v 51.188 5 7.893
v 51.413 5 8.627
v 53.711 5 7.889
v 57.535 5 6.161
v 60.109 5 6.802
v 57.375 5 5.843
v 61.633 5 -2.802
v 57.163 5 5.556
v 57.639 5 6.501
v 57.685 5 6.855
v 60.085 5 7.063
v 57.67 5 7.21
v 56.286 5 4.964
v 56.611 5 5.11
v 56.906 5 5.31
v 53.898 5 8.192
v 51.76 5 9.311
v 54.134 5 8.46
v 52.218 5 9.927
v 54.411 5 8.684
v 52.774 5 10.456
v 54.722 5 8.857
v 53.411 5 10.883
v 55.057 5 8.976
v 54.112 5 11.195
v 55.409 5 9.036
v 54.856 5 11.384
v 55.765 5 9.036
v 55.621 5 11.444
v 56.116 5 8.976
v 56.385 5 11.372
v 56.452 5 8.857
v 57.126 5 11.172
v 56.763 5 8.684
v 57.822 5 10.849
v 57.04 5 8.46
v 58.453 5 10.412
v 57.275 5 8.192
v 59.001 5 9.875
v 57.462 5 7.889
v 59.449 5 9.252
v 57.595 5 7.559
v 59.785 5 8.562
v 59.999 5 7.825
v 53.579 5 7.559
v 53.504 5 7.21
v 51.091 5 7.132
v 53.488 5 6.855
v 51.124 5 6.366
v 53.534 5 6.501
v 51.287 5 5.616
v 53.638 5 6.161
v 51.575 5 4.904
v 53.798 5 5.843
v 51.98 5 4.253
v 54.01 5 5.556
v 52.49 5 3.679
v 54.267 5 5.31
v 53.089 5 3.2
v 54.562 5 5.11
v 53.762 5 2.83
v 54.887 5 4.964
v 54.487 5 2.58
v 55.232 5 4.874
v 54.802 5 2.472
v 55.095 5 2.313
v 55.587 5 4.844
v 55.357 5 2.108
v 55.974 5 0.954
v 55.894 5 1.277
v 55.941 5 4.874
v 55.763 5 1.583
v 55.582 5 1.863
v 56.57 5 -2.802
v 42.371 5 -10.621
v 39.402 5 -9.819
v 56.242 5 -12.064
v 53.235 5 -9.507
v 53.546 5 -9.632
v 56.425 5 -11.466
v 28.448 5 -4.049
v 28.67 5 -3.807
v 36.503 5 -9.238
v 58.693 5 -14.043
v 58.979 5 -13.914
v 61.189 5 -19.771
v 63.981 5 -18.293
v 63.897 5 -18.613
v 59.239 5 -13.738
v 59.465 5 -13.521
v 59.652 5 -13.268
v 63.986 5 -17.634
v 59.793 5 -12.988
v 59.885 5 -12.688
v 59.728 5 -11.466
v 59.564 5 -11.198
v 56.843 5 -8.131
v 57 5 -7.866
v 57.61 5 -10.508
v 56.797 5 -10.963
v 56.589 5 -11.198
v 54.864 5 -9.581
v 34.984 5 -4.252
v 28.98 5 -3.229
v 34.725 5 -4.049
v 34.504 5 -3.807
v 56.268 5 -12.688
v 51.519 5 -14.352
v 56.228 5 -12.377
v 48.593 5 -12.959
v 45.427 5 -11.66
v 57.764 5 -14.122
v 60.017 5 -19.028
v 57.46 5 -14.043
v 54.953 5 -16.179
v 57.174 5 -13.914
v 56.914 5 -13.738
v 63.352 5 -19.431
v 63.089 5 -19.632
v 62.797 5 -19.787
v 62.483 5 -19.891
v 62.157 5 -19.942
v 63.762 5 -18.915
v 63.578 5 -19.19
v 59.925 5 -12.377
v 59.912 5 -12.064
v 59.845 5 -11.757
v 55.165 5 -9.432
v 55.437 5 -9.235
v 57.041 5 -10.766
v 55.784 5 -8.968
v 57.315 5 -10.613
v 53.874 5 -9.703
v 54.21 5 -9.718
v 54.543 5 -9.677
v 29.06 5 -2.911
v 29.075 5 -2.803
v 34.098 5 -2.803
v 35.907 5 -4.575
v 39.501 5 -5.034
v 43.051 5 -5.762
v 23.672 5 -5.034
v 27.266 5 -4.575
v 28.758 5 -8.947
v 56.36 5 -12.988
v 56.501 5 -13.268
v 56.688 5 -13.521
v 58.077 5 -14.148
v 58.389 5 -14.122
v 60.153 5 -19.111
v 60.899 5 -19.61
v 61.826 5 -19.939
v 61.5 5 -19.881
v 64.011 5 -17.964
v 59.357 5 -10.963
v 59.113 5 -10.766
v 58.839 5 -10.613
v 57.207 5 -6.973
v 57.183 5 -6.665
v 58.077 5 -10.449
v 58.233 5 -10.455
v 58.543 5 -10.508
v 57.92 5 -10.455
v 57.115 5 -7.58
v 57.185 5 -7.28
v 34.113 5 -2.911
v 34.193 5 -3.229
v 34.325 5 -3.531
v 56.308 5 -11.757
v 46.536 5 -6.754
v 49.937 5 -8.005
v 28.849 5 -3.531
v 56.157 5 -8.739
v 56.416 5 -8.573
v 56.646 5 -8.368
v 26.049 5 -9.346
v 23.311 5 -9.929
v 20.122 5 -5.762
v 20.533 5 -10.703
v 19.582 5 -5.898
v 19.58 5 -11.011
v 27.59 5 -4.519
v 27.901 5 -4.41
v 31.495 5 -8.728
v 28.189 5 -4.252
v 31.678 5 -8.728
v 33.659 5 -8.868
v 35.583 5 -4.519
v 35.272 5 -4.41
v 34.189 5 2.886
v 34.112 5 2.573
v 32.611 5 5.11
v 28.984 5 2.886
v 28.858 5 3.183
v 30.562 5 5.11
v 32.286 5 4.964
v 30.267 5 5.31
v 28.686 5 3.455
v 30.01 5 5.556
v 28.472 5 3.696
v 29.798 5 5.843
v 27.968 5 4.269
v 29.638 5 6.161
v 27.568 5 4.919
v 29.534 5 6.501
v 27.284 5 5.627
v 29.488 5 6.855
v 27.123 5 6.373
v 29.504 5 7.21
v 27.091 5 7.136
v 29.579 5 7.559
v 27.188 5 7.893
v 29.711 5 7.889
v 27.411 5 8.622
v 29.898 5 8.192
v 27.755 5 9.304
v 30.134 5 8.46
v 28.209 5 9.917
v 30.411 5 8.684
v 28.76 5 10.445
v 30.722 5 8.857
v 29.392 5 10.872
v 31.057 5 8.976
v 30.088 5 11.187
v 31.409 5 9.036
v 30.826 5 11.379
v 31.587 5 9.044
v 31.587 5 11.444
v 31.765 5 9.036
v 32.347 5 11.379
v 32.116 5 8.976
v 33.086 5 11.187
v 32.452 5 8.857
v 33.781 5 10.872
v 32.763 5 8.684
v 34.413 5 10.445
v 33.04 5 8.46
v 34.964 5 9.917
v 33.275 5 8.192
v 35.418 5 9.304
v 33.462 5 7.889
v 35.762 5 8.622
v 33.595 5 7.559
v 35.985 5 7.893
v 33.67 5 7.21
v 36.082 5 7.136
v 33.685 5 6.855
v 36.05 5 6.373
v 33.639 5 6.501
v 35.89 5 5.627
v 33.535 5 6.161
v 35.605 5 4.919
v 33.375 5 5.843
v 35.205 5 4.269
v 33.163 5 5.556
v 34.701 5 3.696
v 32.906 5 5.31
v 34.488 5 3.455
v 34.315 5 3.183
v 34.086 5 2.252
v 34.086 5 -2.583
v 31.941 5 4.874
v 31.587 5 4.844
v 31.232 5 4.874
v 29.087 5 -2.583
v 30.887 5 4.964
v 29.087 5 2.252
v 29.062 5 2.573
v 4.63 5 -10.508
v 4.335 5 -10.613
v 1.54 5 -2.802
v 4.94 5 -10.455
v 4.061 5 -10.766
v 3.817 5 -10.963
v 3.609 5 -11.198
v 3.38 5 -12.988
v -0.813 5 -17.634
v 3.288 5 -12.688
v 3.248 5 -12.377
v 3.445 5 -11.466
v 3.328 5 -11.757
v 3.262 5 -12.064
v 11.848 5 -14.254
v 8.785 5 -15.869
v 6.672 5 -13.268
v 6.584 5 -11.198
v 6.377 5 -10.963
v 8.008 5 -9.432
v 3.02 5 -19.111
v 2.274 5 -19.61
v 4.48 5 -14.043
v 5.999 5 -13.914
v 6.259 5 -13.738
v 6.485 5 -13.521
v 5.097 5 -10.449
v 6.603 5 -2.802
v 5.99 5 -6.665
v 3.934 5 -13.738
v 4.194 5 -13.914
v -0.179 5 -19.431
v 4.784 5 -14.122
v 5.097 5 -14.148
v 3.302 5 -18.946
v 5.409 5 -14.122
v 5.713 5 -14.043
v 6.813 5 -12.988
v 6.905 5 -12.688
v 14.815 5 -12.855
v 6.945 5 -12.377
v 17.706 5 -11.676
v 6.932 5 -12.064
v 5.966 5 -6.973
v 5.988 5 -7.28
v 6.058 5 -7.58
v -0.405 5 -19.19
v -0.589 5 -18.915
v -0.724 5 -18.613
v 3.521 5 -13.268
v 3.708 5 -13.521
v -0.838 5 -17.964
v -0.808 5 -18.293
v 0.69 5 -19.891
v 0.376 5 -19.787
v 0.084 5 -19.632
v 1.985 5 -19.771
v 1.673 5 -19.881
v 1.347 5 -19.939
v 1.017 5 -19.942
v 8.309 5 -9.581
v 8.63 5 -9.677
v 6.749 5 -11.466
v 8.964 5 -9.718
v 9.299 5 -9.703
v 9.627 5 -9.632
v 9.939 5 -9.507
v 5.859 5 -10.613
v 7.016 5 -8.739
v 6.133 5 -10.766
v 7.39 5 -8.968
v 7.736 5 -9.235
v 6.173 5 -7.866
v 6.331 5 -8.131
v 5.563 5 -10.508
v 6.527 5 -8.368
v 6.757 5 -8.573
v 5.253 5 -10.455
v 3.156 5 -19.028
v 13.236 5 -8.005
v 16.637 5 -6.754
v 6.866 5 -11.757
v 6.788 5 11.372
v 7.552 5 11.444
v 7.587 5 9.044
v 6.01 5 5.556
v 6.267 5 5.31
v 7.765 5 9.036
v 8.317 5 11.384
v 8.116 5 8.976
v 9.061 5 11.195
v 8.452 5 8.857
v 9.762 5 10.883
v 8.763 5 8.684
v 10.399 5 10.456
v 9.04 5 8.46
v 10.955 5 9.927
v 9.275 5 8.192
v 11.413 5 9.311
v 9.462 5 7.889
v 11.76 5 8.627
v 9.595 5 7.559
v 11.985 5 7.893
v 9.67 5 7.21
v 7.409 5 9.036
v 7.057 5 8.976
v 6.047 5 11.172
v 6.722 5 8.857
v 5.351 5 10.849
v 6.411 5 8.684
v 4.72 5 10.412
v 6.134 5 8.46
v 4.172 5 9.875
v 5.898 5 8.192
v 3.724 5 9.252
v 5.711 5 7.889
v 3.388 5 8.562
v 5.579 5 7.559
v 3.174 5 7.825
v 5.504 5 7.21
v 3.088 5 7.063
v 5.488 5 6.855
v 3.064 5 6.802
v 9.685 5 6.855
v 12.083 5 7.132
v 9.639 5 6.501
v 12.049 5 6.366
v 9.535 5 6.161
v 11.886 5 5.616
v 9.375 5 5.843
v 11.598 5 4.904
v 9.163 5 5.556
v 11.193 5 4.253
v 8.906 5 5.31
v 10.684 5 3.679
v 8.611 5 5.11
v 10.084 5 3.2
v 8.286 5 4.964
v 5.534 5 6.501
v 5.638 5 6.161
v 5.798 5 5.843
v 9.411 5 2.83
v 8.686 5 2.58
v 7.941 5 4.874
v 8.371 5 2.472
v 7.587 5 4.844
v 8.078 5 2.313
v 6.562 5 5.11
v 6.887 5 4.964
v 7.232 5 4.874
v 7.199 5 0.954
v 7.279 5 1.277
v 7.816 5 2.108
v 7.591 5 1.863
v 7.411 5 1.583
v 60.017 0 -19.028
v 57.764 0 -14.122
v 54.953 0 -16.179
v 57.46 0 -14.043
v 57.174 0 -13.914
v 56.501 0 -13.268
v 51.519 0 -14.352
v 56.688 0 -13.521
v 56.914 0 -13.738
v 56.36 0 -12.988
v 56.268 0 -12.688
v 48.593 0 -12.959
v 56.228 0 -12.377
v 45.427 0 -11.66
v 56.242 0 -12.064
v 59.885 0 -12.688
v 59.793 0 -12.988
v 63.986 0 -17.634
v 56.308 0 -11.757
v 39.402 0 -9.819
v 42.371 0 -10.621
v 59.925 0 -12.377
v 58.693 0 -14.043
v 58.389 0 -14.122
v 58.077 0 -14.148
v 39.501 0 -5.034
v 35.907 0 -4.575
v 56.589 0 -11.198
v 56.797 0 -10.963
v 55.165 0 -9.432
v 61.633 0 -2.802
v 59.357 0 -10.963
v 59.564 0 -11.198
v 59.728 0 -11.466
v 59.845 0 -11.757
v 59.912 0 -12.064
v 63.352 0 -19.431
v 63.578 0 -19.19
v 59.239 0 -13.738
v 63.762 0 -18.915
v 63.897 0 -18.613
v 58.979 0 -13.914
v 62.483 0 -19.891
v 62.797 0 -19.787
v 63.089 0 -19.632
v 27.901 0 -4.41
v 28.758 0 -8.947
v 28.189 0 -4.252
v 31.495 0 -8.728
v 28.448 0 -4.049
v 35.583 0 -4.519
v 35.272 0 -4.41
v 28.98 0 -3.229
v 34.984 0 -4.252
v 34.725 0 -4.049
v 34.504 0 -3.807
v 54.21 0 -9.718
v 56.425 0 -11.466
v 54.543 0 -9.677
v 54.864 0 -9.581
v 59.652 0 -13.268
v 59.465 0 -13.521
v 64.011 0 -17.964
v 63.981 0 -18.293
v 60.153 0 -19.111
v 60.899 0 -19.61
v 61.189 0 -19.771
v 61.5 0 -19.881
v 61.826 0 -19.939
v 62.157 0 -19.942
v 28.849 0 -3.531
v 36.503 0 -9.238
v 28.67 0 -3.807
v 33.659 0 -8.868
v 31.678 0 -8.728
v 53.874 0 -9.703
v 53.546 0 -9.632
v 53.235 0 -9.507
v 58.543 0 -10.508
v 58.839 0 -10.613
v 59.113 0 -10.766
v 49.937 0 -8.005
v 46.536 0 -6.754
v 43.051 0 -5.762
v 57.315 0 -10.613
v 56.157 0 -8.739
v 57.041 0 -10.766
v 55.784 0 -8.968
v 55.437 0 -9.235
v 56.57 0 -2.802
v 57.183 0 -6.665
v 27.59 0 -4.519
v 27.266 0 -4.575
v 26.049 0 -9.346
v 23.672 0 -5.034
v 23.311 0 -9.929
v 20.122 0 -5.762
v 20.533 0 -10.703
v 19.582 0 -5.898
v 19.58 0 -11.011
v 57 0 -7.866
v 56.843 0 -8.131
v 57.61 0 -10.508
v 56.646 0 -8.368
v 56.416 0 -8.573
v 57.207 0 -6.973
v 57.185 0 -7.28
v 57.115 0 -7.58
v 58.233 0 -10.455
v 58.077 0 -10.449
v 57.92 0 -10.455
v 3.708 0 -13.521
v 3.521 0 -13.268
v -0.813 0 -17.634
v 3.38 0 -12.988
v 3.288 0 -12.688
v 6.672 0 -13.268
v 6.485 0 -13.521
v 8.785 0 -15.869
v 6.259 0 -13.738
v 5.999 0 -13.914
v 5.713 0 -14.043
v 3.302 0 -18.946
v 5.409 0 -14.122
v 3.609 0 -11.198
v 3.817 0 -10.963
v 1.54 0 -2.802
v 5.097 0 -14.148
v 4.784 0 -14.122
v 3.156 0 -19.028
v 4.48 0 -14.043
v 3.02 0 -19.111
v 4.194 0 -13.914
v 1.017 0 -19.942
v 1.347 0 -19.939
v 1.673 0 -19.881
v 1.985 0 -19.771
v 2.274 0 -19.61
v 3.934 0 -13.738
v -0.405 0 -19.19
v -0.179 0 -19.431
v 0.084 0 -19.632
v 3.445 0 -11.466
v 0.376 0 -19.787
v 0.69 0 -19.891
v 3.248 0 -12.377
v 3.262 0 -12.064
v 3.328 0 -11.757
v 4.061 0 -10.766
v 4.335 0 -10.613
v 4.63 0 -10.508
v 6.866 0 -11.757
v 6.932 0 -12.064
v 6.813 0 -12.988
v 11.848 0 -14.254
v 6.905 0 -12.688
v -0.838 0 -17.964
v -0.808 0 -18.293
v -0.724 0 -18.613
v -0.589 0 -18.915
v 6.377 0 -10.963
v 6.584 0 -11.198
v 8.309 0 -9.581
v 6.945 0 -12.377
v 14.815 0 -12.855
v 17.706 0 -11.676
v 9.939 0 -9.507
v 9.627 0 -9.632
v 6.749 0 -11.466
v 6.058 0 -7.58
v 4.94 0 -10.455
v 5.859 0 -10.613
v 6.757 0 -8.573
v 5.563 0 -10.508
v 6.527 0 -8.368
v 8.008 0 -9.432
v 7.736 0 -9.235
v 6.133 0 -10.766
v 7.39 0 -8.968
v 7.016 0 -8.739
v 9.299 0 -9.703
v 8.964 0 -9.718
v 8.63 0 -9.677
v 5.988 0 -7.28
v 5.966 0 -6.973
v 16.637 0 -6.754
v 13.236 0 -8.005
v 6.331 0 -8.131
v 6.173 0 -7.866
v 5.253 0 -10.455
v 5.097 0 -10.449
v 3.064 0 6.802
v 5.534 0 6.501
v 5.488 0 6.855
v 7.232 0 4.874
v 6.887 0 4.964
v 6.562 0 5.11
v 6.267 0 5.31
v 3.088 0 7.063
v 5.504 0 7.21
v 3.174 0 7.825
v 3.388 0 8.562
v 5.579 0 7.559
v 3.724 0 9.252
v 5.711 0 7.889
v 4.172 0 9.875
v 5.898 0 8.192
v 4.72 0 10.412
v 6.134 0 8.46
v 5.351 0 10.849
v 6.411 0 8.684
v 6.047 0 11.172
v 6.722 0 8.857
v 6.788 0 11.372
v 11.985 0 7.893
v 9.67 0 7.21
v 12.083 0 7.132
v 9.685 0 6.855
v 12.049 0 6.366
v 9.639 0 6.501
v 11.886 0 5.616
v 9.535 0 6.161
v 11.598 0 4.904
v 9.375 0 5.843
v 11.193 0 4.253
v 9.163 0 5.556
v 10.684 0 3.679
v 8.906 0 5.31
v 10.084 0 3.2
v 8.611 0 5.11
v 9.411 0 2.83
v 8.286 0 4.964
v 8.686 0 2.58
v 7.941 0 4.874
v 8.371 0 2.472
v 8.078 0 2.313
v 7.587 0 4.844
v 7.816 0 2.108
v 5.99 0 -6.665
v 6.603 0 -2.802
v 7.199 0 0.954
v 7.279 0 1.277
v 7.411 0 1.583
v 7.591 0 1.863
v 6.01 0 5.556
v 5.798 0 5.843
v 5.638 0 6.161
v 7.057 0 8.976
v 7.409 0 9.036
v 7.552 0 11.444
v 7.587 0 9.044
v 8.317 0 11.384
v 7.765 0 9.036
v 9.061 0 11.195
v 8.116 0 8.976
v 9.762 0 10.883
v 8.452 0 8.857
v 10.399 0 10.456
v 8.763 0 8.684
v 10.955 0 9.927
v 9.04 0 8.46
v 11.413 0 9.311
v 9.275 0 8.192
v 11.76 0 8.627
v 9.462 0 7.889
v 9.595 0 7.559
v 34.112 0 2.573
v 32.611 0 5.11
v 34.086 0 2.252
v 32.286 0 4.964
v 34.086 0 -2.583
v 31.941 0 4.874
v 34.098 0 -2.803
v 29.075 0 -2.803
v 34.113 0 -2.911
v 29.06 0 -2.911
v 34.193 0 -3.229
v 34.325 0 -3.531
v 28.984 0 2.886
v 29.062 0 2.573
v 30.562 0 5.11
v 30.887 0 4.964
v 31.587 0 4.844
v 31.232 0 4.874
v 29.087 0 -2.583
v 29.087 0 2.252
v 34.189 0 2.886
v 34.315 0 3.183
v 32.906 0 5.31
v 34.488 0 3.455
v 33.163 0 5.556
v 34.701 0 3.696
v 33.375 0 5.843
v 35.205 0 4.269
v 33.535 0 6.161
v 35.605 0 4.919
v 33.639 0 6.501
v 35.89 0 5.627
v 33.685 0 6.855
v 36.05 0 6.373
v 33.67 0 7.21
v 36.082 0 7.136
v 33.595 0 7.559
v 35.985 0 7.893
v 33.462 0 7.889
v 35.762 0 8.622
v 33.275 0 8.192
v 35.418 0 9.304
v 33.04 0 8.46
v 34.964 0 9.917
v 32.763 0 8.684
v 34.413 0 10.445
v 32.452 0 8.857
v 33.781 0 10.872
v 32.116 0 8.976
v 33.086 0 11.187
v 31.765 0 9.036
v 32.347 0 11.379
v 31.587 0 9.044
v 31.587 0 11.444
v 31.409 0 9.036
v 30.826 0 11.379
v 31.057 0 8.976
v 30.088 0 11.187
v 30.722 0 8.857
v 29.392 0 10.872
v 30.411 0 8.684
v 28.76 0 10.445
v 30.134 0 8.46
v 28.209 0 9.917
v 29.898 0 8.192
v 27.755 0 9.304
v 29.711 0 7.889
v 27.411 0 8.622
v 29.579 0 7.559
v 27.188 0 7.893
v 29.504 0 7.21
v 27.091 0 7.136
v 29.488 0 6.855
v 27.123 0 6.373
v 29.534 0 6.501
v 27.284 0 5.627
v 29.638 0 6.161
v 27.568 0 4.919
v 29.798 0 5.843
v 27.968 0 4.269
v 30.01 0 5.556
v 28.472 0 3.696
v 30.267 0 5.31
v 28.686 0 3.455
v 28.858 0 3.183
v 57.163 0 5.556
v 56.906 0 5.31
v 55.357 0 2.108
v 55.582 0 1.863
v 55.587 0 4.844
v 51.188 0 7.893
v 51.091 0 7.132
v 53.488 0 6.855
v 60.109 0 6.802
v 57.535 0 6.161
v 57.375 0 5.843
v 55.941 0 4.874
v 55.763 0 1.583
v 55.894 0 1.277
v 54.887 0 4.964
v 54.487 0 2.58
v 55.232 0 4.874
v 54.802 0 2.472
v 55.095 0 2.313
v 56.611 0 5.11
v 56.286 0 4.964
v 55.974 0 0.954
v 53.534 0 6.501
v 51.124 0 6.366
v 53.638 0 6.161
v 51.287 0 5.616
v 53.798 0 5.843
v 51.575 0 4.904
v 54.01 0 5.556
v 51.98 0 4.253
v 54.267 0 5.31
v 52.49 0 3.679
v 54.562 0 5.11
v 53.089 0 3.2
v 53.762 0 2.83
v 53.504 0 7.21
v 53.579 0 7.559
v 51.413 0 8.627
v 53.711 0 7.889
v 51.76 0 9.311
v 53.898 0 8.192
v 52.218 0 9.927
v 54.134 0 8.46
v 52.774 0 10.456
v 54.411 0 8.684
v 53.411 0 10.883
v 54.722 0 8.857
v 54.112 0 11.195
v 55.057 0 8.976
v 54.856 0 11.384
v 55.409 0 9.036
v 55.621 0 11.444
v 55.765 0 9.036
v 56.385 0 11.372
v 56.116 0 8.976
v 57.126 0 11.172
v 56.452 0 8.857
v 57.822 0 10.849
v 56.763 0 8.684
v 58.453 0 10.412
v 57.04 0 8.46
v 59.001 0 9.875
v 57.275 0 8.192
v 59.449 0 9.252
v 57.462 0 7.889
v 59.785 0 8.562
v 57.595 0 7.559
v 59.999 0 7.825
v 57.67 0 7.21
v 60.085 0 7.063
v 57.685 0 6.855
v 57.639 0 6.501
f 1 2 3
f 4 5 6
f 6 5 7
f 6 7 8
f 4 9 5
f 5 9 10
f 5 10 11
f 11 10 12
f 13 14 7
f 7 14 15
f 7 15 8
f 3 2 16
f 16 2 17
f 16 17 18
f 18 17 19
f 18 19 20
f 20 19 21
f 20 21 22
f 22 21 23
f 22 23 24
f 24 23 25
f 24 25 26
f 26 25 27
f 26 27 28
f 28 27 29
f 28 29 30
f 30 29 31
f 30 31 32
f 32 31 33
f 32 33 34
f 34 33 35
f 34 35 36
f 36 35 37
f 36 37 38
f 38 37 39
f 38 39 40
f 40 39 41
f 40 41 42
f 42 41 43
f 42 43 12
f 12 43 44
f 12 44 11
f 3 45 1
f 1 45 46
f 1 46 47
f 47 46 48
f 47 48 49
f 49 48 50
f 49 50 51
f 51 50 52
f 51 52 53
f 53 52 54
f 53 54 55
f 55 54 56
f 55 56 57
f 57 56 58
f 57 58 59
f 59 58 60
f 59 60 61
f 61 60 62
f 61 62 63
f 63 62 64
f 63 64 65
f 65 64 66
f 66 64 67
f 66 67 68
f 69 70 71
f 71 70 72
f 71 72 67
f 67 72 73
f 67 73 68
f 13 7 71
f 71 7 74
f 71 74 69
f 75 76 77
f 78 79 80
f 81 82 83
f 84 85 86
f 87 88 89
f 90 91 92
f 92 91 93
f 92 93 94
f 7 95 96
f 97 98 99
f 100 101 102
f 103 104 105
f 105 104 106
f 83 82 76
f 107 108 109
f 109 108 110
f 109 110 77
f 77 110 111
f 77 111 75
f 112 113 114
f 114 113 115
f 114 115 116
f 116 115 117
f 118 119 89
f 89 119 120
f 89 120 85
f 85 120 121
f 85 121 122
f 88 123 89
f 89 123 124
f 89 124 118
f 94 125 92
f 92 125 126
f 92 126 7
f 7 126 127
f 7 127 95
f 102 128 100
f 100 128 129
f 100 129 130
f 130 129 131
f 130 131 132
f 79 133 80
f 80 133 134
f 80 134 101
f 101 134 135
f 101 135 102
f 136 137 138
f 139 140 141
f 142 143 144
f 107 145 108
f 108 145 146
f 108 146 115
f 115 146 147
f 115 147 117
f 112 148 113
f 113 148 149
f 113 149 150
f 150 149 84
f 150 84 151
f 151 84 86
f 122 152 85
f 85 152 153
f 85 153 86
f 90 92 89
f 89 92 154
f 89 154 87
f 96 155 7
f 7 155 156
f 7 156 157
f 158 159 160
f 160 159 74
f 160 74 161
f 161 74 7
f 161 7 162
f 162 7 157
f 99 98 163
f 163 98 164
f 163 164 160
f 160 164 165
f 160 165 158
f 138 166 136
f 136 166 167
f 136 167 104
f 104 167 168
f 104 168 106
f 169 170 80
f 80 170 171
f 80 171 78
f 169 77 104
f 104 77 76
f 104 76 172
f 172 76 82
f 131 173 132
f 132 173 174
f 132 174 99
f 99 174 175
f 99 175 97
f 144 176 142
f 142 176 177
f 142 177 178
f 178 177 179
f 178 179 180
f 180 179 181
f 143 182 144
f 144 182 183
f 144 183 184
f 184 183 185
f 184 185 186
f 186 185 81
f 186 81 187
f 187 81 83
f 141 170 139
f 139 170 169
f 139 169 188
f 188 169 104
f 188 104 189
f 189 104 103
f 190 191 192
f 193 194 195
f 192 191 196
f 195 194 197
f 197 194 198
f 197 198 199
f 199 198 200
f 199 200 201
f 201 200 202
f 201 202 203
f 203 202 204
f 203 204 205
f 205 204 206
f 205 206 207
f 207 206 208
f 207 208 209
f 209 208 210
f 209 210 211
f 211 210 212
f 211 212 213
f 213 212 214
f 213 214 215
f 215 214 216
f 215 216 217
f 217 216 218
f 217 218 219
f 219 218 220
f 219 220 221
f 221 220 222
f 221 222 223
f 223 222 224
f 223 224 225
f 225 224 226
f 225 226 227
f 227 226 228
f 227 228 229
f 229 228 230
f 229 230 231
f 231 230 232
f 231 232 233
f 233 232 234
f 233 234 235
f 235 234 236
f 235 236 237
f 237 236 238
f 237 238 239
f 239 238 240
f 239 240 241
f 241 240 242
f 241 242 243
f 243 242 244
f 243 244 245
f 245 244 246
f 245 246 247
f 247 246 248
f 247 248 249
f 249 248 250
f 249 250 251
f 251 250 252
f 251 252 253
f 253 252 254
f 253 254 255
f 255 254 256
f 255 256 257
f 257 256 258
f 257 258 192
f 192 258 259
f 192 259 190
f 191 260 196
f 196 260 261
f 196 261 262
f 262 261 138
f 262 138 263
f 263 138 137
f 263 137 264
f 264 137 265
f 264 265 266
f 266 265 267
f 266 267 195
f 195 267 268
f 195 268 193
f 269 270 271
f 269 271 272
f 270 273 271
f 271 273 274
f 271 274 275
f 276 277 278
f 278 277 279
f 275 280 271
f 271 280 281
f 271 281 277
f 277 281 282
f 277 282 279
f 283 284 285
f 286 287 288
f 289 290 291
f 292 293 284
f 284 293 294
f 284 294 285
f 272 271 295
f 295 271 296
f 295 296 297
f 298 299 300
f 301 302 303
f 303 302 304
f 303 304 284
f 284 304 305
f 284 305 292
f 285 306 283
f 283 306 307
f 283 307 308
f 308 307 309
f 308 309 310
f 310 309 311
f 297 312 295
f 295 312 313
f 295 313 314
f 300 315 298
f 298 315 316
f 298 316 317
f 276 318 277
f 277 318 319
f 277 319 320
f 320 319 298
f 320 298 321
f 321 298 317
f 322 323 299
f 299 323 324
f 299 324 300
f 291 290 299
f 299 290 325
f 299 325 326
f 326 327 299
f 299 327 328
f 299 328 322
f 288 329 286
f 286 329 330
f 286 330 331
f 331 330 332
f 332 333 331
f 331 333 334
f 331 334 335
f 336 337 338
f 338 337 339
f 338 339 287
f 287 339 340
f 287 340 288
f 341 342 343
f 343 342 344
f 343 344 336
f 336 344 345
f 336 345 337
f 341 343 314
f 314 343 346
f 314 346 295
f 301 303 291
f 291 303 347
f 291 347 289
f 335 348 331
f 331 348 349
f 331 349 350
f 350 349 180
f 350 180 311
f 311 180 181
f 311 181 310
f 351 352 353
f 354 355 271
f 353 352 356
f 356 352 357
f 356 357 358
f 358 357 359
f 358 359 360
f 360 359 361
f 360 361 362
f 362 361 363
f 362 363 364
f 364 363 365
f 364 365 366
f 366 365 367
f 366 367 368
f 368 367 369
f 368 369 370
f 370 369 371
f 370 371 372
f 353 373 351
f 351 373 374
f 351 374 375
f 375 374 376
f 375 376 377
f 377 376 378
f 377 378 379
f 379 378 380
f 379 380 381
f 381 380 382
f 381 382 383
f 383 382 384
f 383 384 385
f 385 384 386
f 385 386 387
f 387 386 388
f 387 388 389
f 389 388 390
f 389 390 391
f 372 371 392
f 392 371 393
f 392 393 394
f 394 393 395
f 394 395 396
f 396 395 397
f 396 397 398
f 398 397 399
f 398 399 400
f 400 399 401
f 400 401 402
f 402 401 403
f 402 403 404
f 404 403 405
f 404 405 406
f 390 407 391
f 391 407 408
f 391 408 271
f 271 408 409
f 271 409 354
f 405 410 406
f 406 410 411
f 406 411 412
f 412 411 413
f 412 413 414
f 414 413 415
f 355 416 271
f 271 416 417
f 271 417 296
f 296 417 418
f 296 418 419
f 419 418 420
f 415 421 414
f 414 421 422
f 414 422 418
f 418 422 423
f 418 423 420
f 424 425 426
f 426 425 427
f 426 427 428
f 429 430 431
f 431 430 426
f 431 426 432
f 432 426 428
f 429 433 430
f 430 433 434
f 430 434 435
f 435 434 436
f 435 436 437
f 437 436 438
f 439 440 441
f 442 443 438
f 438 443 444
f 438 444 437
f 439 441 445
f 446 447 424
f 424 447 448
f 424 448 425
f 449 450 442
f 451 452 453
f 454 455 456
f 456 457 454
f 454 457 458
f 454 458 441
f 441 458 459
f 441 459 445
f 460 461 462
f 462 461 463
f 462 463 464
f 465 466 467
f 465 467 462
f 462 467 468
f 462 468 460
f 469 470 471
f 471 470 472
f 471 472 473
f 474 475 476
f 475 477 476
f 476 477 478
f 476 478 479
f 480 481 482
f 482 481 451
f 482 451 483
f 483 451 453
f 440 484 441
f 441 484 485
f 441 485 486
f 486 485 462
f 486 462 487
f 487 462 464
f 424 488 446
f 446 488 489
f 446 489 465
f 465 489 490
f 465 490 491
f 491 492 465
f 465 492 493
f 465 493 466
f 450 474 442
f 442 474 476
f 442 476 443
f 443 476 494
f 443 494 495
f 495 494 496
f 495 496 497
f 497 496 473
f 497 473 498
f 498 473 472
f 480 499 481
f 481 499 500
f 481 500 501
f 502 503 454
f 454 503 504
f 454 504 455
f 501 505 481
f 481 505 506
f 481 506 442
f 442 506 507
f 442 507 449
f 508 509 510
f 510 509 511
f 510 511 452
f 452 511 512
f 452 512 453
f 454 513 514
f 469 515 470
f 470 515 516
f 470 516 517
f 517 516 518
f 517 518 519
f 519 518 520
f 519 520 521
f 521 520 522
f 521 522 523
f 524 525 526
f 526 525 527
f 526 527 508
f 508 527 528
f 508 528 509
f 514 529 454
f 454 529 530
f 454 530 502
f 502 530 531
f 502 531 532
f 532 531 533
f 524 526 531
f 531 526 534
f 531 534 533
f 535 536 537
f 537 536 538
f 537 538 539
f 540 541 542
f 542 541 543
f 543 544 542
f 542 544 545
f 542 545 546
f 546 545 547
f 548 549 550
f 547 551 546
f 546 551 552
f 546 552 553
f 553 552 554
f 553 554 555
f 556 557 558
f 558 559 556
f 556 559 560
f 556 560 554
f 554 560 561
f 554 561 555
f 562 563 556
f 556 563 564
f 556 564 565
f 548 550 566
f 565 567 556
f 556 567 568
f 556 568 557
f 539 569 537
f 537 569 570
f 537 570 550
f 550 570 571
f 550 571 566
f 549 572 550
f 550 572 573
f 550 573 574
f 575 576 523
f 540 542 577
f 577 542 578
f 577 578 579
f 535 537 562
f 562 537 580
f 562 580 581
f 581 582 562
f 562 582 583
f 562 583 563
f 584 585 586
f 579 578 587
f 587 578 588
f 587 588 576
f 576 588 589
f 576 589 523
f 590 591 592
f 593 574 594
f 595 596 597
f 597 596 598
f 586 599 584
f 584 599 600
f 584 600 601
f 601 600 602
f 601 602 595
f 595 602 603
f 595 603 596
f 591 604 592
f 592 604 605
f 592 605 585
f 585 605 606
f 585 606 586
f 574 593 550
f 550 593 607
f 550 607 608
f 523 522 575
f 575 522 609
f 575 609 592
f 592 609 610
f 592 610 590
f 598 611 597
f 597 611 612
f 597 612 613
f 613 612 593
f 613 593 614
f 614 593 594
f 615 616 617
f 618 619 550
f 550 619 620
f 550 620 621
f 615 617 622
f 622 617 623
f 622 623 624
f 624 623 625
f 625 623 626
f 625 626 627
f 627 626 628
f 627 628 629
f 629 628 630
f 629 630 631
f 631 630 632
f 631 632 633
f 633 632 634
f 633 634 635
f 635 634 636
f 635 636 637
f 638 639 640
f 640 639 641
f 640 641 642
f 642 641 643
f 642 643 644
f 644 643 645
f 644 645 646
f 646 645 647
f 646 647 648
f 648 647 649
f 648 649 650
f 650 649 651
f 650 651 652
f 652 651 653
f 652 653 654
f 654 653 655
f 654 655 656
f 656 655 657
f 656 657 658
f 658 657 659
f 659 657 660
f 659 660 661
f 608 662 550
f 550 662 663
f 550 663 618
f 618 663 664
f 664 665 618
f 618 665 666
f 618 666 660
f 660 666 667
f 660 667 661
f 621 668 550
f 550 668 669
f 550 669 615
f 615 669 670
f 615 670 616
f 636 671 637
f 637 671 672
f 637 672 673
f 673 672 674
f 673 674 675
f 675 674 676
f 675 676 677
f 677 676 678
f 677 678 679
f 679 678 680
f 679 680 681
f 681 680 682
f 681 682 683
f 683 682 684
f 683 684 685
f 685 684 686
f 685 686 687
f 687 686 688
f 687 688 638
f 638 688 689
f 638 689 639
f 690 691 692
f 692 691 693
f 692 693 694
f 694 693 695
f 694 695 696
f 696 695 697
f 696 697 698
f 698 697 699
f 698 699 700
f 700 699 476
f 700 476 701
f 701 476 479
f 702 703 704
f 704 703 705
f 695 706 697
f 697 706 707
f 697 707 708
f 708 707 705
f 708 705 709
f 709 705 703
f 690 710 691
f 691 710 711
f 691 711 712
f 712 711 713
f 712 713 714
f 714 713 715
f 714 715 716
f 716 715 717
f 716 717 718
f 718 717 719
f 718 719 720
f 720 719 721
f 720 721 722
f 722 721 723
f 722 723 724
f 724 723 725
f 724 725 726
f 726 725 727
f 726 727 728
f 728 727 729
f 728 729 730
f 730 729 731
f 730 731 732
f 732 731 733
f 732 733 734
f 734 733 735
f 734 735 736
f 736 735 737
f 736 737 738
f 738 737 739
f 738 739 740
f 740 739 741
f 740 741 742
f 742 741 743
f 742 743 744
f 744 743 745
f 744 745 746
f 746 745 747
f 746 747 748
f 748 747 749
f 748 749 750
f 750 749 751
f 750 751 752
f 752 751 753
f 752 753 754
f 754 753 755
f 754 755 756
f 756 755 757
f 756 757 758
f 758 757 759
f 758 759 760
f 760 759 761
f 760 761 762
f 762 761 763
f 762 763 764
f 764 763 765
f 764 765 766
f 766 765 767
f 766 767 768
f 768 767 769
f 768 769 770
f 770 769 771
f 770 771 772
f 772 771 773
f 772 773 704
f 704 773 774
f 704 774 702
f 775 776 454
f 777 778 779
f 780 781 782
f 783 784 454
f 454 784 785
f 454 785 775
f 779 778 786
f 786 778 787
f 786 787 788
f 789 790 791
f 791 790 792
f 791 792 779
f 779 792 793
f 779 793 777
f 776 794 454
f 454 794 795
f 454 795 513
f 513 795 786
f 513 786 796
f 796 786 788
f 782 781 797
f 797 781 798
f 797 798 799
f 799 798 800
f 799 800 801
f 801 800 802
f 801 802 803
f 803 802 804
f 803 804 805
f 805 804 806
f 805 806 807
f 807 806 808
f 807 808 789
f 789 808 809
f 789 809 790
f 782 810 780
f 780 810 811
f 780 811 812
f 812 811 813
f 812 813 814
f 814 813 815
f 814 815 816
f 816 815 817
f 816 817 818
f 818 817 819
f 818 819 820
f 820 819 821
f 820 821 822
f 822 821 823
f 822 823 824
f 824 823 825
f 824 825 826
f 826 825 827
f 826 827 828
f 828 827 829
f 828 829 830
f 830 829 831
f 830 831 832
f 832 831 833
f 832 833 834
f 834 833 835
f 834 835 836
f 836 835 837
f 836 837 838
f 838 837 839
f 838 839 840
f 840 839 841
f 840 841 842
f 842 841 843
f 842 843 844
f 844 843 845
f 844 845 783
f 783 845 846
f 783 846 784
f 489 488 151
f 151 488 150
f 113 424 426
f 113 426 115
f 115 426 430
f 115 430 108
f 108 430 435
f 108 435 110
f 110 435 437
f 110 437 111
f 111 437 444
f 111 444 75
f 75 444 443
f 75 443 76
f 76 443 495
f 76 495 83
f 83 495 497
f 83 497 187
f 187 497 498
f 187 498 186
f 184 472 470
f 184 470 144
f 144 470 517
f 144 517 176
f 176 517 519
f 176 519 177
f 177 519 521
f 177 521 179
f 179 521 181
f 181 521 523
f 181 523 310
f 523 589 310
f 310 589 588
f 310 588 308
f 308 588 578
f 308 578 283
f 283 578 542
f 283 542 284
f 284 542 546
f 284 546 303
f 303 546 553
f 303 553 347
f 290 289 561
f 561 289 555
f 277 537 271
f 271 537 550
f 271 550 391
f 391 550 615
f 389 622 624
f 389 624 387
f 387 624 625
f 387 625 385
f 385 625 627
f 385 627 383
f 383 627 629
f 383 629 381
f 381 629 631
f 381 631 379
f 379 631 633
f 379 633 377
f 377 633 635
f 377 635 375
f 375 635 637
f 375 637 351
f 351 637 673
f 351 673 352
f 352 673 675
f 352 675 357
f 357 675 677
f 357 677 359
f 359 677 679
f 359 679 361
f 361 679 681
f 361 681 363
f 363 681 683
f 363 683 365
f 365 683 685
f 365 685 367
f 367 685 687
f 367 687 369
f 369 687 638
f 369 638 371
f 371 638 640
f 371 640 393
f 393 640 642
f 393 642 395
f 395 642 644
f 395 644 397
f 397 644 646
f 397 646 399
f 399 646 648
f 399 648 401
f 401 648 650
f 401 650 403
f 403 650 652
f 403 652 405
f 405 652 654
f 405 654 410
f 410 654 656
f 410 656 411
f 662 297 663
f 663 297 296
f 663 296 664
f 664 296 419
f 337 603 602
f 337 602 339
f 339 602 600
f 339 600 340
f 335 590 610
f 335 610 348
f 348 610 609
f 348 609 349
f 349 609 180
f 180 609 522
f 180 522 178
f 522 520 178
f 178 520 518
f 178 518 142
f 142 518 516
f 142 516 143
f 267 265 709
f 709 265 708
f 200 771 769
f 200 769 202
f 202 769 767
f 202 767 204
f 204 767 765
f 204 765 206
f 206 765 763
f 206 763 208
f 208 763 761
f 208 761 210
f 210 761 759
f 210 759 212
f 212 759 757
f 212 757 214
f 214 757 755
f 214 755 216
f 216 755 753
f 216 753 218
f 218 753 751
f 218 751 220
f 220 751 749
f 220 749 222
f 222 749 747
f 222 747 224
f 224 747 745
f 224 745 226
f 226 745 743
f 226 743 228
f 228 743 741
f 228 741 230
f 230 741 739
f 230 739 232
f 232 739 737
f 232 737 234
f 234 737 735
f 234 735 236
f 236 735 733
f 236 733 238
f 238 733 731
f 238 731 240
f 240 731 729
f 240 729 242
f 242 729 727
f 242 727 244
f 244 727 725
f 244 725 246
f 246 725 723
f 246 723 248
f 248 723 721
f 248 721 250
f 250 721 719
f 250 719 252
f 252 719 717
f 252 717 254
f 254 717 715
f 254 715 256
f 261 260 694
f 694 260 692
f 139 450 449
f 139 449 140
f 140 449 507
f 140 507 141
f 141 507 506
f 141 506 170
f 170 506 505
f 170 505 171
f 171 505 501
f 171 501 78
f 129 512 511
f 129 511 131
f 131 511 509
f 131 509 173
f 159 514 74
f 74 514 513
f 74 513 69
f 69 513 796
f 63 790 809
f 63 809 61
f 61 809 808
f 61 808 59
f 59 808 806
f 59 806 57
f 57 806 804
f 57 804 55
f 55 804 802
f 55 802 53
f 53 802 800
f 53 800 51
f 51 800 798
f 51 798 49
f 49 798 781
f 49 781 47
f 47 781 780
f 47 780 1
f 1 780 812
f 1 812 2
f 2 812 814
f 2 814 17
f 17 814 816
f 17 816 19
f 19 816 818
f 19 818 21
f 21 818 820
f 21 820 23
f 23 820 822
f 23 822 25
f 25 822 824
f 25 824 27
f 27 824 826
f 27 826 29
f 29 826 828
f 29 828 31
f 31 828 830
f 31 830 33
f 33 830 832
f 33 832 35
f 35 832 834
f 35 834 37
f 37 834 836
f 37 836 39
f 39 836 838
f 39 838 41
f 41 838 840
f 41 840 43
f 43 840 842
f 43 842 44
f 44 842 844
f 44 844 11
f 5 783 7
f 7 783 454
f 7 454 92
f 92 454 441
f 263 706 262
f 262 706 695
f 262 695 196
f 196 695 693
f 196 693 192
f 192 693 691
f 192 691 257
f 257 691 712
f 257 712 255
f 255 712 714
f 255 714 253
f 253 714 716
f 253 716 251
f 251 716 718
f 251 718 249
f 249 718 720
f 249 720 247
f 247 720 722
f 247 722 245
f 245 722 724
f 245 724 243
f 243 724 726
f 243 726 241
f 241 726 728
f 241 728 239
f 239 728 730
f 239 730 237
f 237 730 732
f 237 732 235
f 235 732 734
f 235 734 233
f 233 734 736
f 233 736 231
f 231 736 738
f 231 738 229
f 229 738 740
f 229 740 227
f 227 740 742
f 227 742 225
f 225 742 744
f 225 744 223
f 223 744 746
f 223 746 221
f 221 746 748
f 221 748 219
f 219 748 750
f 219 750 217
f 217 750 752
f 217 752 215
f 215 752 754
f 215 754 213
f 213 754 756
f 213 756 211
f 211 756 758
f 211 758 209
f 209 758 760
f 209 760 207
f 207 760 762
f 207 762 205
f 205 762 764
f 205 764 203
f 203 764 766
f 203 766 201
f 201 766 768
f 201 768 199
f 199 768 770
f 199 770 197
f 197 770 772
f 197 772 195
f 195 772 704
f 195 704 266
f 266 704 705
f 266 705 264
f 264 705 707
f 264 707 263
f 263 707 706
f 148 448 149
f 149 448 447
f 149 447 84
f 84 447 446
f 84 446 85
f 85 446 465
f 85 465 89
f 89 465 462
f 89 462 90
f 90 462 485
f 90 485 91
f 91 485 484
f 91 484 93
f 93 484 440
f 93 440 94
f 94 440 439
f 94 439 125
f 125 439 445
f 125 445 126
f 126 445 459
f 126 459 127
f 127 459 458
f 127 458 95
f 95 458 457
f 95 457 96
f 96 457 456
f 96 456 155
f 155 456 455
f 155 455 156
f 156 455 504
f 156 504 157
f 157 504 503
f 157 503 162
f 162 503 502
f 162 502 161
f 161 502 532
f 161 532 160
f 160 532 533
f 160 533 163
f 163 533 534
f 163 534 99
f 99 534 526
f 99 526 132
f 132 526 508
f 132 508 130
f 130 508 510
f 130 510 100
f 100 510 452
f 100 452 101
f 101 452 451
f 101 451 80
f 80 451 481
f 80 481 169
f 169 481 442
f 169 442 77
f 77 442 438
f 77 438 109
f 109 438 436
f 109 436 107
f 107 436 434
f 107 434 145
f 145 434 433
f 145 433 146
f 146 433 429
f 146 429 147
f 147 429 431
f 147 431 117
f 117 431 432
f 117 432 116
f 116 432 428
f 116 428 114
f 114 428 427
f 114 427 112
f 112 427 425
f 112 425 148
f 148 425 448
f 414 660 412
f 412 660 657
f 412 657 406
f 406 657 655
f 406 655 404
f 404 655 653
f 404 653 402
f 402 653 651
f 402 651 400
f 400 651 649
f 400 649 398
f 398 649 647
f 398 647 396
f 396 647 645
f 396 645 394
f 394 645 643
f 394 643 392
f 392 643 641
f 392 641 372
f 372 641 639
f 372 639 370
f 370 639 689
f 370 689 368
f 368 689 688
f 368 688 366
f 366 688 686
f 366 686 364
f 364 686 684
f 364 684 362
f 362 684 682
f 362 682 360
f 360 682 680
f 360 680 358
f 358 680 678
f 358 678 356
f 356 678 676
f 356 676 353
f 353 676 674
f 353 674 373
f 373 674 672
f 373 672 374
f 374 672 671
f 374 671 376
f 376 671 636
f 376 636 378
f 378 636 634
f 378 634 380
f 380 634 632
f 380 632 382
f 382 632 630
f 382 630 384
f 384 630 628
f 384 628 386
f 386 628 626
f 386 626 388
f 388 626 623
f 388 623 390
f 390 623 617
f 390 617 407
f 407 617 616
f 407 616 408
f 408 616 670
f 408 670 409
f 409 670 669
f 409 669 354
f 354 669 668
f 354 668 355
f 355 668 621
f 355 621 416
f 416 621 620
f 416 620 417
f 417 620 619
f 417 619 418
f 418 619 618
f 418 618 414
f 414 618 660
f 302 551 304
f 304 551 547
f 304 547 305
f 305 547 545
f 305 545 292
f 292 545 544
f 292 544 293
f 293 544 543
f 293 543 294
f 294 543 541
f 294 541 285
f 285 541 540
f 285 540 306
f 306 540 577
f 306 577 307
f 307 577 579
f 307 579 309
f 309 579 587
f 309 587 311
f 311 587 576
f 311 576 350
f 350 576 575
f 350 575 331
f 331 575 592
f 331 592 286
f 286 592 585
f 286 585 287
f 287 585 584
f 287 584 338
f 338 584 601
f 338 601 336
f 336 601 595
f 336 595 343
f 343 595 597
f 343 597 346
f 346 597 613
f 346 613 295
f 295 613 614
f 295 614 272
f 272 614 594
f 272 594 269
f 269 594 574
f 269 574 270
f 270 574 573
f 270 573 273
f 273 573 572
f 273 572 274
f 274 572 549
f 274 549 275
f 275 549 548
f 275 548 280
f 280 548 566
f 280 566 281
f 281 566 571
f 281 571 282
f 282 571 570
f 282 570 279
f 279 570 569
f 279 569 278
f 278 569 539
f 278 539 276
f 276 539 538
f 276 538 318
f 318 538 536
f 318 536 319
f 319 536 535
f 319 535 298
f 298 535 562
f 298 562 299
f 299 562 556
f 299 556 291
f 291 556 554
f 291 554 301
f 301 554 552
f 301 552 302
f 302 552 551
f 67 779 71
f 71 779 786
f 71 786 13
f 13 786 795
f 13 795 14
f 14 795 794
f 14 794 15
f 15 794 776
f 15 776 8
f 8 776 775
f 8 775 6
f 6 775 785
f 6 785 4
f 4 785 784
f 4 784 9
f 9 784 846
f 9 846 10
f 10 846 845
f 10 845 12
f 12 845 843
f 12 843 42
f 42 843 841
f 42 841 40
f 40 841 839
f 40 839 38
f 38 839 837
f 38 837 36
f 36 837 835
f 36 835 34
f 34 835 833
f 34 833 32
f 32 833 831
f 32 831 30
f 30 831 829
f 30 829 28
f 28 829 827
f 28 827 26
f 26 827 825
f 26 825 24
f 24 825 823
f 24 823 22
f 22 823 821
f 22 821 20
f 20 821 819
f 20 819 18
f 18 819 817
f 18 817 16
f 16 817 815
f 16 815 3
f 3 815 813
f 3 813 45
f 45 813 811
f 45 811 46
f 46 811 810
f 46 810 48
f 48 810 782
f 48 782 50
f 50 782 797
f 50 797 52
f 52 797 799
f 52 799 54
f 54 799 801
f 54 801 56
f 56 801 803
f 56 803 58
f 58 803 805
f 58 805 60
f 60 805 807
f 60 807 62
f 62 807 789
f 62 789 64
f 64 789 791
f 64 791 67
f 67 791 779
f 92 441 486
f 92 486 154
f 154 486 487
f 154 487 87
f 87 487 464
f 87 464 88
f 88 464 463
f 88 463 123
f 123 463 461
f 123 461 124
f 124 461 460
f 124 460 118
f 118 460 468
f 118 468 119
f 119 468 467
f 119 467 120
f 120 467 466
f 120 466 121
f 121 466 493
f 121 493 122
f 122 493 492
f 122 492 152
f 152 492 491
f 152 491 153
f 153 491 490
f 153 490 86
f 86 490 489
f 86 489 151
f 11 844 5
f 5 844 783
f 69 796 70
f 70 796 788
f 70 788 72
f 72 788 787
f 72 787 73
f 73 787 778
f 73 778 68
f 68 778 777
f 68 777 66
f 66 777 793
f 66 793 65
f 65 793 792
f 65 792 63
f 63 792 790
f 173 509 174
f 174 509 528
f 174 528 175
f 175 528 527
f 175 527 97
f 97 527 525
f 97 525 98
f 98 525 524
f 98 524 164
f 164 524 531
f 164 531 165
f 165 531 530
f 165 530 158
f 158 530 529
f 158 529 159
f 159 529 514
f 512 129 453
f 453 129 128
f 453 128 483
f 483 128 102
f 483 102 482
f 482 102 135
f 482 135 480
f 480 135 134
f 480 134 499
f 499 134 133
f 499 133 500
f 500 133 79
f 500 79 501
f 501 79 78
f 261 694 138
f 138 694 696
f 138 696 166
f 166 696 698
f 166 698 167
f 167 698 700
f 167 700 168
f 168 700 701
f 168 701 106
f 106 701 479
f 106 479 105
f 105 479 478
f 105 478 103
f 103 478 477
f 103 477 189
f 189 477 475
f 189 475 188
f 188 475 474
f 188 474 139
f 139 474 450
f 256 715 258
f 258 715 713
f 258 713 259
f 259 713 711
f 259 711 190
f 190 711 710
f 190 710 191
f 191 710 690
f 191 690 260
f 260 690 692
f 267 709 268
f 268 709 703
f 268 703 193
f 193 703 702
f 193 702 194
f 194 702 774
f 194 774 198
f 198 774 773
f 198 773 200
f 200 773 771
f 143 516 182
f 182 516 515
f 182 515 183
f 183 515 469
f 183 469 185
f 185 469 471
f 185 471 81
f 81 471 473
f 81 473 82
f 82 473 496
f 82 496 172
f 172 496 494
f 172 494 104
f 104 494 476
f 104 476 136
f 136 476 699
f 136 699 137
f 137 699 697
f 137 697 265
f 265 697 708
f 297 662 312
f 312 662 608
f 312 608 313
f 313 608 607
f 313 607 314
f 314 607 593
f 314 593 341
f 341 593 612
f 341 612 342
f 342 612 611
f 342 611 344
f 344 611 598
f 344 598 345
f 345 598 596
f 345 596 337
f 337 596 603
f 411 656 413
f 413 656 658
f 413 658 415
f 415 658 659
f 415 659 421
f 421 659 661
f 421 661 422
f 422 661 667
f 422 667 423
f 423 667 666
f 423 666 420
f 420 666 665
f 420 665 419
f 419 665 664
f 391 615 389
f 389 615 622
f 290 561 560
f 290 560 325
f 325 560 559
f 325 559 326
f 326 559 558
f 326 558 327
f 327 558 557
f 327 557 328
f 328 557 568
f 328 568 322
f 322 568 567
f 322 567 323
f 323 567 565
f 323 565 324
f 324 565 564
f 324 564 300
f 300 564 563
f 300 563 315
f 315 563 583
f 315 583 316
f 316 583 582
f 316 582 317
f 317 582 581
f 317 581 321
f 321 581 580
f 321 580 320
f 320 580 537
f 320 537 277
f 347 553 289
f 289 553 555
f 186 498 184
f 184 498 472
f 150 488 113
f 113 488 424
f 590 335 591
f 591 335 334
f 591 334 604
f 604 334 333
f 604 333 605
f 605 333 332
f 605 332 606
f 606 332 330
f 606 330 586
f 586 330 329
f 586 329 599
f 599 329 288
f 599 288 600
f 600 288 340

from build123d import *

# Parameters (mm, degrees)
SKETCH1_R           = 2.1
SKETCH1_R_2         = 1.85
BOSS_EXTRUDE1_DEPTH = 5
FILLET1_R           = 2


with BuildPart() as part:
    # Sketch1 → Boss-Extrude1 (new body)
    with BuildSketch(Plane(origin=(0, 0, 0), x_dir=(1, 0, 0), z_dir=(0, 1, 0))):
        with BuildLine():
            Line((64.703578791, 22.153935156), (60.086593503, -6.943643112))
            ThreePointArc((60.086593503, -6.943643112), (52.351867725, -10.071989183), (55.737016108, -2.446157921))
            Line((55.737016108, -2.446157921), (57.44284906, 8.304495315))
            ThreePointArc((57.44284906, 8.304495315), (55.811241442, 8.948588976), (54.605866, 10.222979068))
            ThreePointArc((54.605866, 10.222979068), (44.668654946, 6.187635781), (34.085703384, 4.445999995))
            Line((34.085703384, 4.445999995), (34.085703384, -3.201391143))
            ThreePointArc((34.085703384, -3.201391143), (31.586593503, -11.443643112), (29.087483622, -3.201391143))
            Line((29.087483622, -3.201391143), (29.087483622, 4.445999995))
            ThreePointArc((29.087483622, 4.445999995), (18.504532059, 6.187635781), (8.567321006, 10.222979068))
            ThreePointArc((8.567321006, 10.222979068), (7.361945564, 8.948588976), (5.730337946, 8.304495315))
            Line((5.730337946, 8.304495315), (7.436170898, -2.446157921))
            ThreePointArc((7.436170898, -2.446157921), (10.821319281, -10.071989183), (3.086593503, -6.943643112))
            Line((3.086593503, -6.943643112), (-1.530391785, 22.153935156))
            Line((-1.530391785, 22.153935156), (3.086593503, 19.066758984))
            add(Edge.make_bspline(
                [(3.086593503, 19.066758984), (6.214599524, 17.320565922), (15.289655428, 11.953978367), (24.991497583, 9.011909138), (31.586593503, 8.723848672)],
                knots=[0.224841934, 0.224841934, 0.224841934, 0.224841934, 0.497996304, 1, 1, 1, 1], degree=3))
            add(Edge.make_bspline(
                [(60.086593503, 19.066758984), (56.958587482, 17.320565922), (47.883531578, 11.953978367), (38.181689422, 9.011909138), (31.586593503, 8.723848672)],
                knots=[0.224841934, 0.224841934, 0.224841934, 0.224841934, 0.497996304, 1, 1, 1, 1], degree=3))
            Line((60.086593503, 19.066758984), (64.703578791, 22.153935156))
        make_face()
        with Locations(Location((7.586593503, -6.943643112, 0), (0, 0, 270))):
            Circle(SKETCH1_R, mode=Mode.SUBTRACT)
        with Locations(Location((55.586593503, -6.943643112, 0), (0, 0, 90))):
            Circle(SKETCH1_R, mode=Mode.SUBTRACT)
        with Locations(Location((31.586593503, -6.943643112, 0), (0, 0, 270))):
            Circle(SKETCH1_R, mode=Mode.SUBTRACT)
        with Locations(Location((5.096599352, 12.298499455, 0), (0, 0, 270))):
            Circle(SKETCH1_R_2, mode=Mode.SUBTRACT)
        with Locations(Location((58.076587654, 12.298499455, 0), (0, 0, 270))):
            Circle(SKETCH1_R_2, mode=Mode.SUBTRACT)
    extrude(amount=BOSS_EXTRUDE1_DEPTH)

    # Fillet1
    # the kernel refuses this fillet: 2 mm, written as the material it adds along each edge
    with BuildSketch(Plane(origin=(60.086593503, 0, 6.943643112), x_dir=(0.15671199054579144, 0, -0.9876443449031517), z_dir=(0, 1, 0))) as fillet1_piece_1:
        with BuildLine():
            CenterArc((0.14315588, -2), FILLET1_R, 90, 7.499462887)
            ThreePointArc((-0.117877916, -0.01710783), (-0.058882351, -0.008943954), (0, 0))
            Line((0, 0), (0.14315588, 0))
        make_face()
    extrude(amount=5)
    with BuildSketch(Plane(origin=(55.737016108, 0, 2.446157921), x_dir=(-0.9943134943930577, 0, 0.1064926047566996), z_dir=(0, 1, 0))) as fillet1_piece_2:
        with BuildLine():
            CenterArc((1.536372783, -1.980396143), FILLET1_R, 98.028765666, 66.841966003)
            Line((-0.39430608, -1.458400811), (0, 0))
            ThreePointArc((0, 0), (0.628516139, -0.044108679), (1.257032277, 0))
        make_face()
    extrude(amount=5)
    with BuildSketch(Plane(origin=(57.44284906, 0, -8.304495315), x_dir=(-0.15671199054619364, 0, 0.9876443449030878), z_dir=(0, 1, 0))) as fillet1_piece_3:
        with BuildLine():
            CenterArc((1.659500293, -2), FILLET1_R, 90, 70.676083633)
            ThreePointArc((-0.227825519, -1.338183351), (-0.057363225, -0.678719225), (0, 0))
            Line((0, 0), (1.659500293, 0))
        make_face()
    extrude(amount=5)
    with BuildSketch(Plane(origin=(54.605866, 0, -10.222979068), x_dir=(0.6436684340700369, 0, 0.7653044799175203), z_dir=(0, 1, 0))) as fillet1_piece_4:
        with BuildLine():
            CenterArc((1.610462564, -1.974349834), FILLET1_R, 99.186138147, 67.391276413)
            ThreePointArc((-0.334906336, -1.510087145), (-0.161404643, -0.756385011), (0, 0))
            ThreePointArc((0, 0), (0.645588922, -0.051864251), (1.291177843, 0))
        make_face()
    extrude(amount=5)
    with BuildSketch(Plane(origin=(34.085703384, 0, -4.445999995), x_dir=(0, 0, 1), z_dir=(0, 1, 0))) as fillet1_piece_5:
        with BuildLine():
            CenterArc((1.863012192, 2), FILLET1_R, 185.134308641, 84.865691359)
            ThreePointArc((-0.128963122, 1.821018582), (-0.055872709, 0.911118963), (0, 0))
            Line((0, 0), (1.863012192, 0))
        make_face()
    extrude(amount=5)
    with BuildSketch(Plane(origin=(34.085703384, 0, 3.201391143), x_dir=(0, 0, -1), z_dir=(0, 1, 0))) as fillet1_piece_6:
        with BuildLine():
            CenterArc((0.949017611, -2), FILLET1_R, 90, 46.197810795)
            ThreePointArc((-0.494449952, -0.615658498), (-0.233694925, -0.318695554), (0, 0))
            Line((0, 0), (0.949017611, 0))
        make_face()
    extrude(amount=5)
    with BuildSketch(Plane(origin=(29.087483622, 0, 3.201391143), x_dir=(-0.7796793430593535, 0, 0.6261789855995925), z_dir=(0, 1, 0))) as fillet1_piece_7:
        with BuildLine():
            CenterArc((0.965103801, -1.992287399), FILLET1_R, 95.03341493, 46.197810795)
            Line((-0.594254885, -0.739929428), (0, 0))
            ThreePointArc((0, 0), (0.394815191, -0.017353353), (0.789630383, 0))
        make_face()
    extrude(amount=5)
    with BuildSketch(Plane(origin=(29.087483622, 0, -4.445999995), x_dir=(0, 0, 1), z_dir=(0, 1, 0))) as fillet1_piece_8:
        with BuildLine():
            CenterArc((1.863012192, -2), FILLET1_R, 90, 84.865691359)
            ThreePointArc((-0.128963122, -1.821018582), (-0.055872709, -0.911118963), (0, 0))
            Line((0, 0), (1.863012192, 0))
        make_face()
    extrude(amount=5)
    with BuildSketch(Plane(origin=(5.730337946, 0, -8.304495315), x_dir=(0.9473329914518264, 0, -0.3202502198390094), z_dir=(0, 1, 0))) as fillet1_piece_9:
        with BuildLine():
            CenterArc((1.69310821, -1.971630242), FILLET1_R, 99.661958184, 70.676083633)
            Line((-0.278522032, -1.635960483), (0, 0))
            ThreePointArc((0, 0), (0.678719225, -0.057363225), (1.357438451, 0))
        make_face()
    extrude(amount=5)
    with BuildSketch(Plane(origin=(7.436170898, 0, 2.446157921), x_dir=(-0.15671199054620055, 0, -0.987644344903087), z_dir=(0, 1, 0))) as fillet1_piece_10:
        with BuildLine():
            CenterArc((1.510764777, -2), FILLET1_R, 90, 66.841966003)
            ThreePointArc((-0.32808249, -1.213462824), (-0.121461398, -0.618243674), (0, 0))
            Line((0, 0), (1.510764777, 0))
        make_face()
    extrude(amount=5)
    with BuildSketch(Plane(origin=(3.086593503, 0, 6.943643112), x_dir=(0.013234765762904084, 0, 0.9999124166521791), z_dir=(0, 1, 0))) as fillet1_piece_11:
        with BuildLine():
            CenterArc((0.145582423, -1.999824833), FILLET1_R, 90.75831836, 7.499462887)
            Line((-0.141671624, -0.020561053), (0, 0))
            ThreePointArc((0, 0), (0.059556446, -0.000394125), (0.119112892, 0))
        make_face()
    extrude(amount=5)
    with BuildSketch(Plane(origin=(3.086593503, 0, -19.066758984), x_dir=(-0.831286153352586, 0, -0.5558447006532138), z_dir=(0, 1, 0))) as fillet1_piece_12:
        with BuildLine():
            CenterArc((0.080080644, -2), FILLET1_R, 90, 4.575133674)
            ThreePointArc((-0.079451987, -0.006372818), (-0.039725694, -0.003190148), (0, 0))
            Line((0, 0), (0.080080644, 0))
        make_face()
    extrude(amount=5)
    with BuildSketch(Plane(origin=(31.586593503, 0, -8.723848672), x_dir=(-0.9989968341104656, 0, -0.044780860166667026), z_dir=(0, 1, 0))) as fillet1_piece_13:
        with BuildLine():
            CenterArc((0.089651597, -1.999998688), FILLET1_R, 89.934377151, 5.264470885)
            ThreePointArc((-0.091573518, -0.008226247), (-0.045789115, -0.0040869), (0, 0))
            ThreePointArc((0, 0), (0.045971133, 2.6329e-05), (0.091942266, 0))
        make_face()
    extrude(amount=5)
    with BuildSketch(Plane(origin=(60.086593503, 0, -19.066758984), x_dir=(-0.8730663040204696, 0, 0.4876015061338889), z_dir=(0, 1, 0))) as fillet1_piece_14:
        with BuildLine():
            CenterArc((0.080081519, -1.999999965), FILLET1_R, 90.010724643, 4.575133674)
            Line((-0.079824277, -0.00640268), (0, 0))
            ThreePointArc((0, 0), (0.039853579, -3.751e-06), (0.079707158, 0))
        make_face()
    extrude(amount=5)
    with BuildSketch(Plane(origin=(8.567321006, 0, -10.222979068), x_dir=(0.8865164621041475, 0, 0.46269705252826665), z_dir=(0, 1, 0))) as fillet1_piece_15:
        with BuildLine():
            CenterArc((1.578820312, -1.999743323), FILLET1_R, 90.91795372, 67.391276413)
            ThreePointArc((-0.279563936, -1.260549177), (-0.089148014, -0.64150416), (0, 0))
            ThreePointArc((0, 0), (0.773389527, -0.006195491), (1.546779054, 0))
        make_face()
    extrude(amount=5)
    # the kernel refuses this fillet: 2 mm, written as the material it takes off along each edge
    with BuildSketch(Plane(origin=(64.703578791, -11.440469637, -22.153935156), x_dir=(-0.831286153352585, 0, 0.5558447006532152), z_dir=(0, 1, 0)), Plane(origin=(-1.530391785, -11.440469637, -22.153935156), x_dir=(0.15671199054620674, 0, 0.987644344903086), z_dir=(0, 1, 0))) as fillet1_2_piece_1:
        with BuildLine():
            CenterArc((FILLET1_R * 2.28809392748, FILLET1_R), FILLET1_R, 137.214985003, 132.785014997)
            Line((FILLET1_R * 1.5541863886, FILLET1_R * 1.67924938305), (0, 0))
            Line((0, 0), (FILLET1_R * 2.28809392748, 0))
        make_face()
    extrude(amount=27.880939275, mode=Mode.SUBTRACT)


solid = part.part
